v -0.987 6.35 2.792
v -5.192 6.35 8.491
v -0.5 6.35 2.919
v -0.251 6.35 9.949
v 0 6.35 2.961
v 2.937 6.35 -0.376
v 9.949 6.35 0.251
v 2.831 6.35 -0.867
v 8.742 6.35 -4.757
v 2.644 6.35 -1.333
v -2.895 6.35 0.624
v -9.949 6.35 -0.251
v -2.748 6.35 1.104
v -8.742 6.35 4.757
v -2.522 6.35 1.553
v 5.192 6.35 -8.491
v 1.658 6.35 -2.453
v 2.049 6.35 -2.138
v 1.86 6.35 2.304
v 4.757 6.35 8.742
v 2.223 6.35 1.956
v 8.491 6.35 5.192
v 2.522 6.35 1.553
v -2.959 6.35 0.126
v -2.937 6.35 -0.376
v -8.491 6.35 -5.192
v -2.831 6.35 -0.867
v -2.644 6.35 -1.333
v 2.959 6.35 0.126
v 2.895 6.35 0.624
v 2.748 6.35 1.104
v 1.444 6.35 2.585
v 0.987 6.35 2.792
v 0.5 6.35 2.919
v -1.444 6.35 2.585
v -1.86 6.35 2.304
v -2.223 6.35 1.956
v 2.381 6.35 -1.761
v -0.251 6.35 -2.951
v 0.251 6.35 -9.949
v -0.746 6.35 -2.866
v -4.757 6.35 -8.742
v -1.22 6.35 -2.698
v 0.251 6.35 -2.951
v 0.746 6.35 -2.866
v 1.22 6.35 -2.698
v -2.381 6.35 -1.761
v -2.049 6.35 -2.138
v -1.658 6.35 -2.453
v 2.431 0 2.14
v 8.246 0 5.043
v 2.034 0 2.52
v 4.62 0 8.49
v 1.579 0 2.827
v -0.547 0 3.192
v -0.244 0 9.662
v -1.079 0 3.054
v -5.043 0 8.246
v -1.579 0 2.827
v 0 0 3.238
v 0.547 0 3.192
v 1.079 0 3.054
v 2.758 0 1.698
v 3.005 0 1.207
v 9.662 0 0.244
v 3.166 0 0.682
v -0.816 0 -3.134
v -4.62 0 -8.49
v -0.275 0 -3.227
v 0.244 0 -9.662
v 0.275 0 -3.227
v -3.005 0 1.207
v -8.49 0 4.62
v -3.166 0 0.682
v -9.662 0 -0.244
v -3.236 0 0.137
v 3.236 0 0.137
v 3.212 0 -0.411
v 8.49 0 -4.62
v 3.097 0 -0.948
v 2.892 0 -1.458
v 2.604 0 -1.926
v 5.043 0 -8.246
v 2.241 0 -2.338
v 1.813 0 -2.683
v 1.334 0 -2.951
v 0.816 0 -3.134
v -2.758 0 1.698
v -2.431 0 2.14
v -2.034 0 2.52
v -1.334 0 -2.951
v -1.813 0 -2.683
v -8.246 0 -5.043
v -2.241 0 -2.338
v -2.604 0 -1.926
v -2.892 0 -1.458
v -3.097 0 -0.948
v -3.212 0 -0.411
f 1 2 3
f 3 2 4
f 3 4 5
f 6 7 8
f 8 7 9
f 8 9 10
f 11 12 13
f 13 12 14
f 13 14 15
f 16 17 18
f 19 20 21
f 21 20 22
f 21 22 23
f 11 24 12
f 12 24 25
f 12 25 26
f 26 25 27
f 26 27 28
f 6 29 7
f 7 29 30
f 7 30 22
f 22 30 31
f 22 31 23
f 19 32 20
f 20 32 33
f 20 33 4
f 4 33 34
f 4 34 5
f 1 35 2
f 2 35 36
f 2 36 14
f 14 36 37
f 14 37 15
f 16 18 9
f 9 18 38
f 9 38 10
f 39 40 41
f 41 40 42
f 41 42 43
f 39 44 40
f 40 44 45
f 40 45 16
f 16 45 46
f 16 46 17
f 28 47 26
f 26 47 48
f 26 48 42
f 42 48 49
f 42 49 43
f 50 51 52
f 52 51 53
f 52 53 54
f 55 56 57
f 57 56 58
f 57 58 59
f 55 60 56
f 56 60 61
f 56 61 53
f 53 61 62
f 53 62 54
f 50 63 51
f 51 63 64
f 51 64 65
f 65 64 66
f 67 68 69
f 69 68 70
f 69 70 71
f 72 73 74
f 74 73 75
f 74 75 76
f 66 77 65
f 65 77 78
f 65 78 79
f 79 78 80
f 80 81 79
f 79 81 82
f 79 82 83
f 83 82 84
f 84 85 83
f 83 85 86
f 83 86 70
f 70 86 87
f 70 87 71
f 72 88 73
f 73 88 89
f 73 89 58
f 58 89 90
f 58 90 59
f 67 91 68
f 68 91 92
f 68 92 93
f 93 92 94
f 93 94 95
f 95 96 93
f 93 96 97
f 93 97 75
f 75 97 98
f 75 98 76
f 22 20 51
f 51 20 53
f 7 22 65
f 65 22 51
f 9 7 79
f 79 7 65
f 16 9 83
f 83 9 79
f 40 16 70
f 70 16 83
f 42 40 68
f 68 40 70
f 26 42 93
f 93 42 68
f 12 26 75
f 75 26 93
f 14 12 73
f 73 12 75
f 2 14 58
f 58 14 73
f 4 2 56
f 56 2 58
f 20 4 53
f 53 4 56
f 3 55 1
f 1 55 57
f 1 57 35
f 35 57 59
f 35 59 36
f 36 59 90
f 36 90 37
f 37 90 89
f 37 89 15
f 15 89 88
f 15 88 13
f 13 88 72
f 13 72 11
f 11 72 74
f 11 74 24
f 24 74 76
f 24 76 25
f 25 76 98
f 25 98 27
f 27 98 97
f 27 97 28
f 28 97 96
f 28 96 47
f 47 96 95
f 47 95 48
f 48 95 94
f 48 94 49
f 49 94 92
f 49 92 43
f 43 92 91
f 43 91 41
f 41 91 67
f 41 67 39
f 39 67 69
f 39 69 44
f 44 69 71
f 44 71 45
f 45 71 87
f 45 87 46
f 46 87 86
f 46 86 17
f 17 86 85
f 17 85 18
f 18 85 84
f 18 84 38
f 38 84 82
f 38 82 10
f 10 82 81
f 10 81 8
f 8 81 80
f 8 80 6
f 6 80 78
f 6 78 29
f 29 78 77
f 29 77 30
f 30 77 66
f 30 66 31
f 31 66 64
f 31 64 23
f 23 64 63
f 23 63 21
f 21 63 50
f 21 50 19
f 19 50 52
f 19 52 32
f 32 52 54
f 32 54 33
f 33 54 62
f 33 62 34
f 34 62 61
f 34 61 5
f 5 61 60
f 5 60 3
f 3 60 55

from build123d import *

# Parameters (mm, degrees)
SKETCH1_R           = 3.2385
BOSS_EXTRUDE1_DEPTH = 6.35
BOSS_EXTRUDE1_DRAFT = -2.5


with BuildPart() as part:
    # Sketch1 → Boss-Extrude1 (with draft: the straight prism first)
    with BuildSketch(Plane(origin=(0, 0, 0), x_dir=(1, 0, 0), z_dir=(0, 1, 0))):
        Polygon((8.24563965, -5.042609025), (9.662237919, -0.244207692), (8.489847342, 4.619628895), (5.042609025, 8.24563965), (0.244207692, 9.662237919), (-4.619628895, 8.489847342), (-8.24563965, 5.042609025), (-9.662237919, 0.244207692), (-8.489847342, -4.619628895), (-5.042609025, -8.24563965), (-0.244207692, -9.662237919), (4.619628895, -8.489847342), align=None)
        Circle(SKETCH1_R, mode=Mode.SUBTRACT)
    extrude(amount=BOSS_EXTRUDE1_DEPTH)
    # Boss-Extrude1: the draft: its side faces are tilted about the plane it starts from
    boss_extrude1_sides = [part.faces().sort_by_distance(p)[0] for p in [
        (8.953938785, 3.175, 2.643408358),
        (9.07604263, 3.175, -2.187710601),
        (6.766228183, 3.175, -6.432634272),
        (2.643408358, 3.175, -8.953938785),
        (-2.187710601, 3.175, -9.07604263),
        (-6.432634272, 3.175, -6.766228183),
        (-8.953938785, 3.175, -2.643408358),
        (-9.07604263, 3.175, 2.187710601),
        (-6.766228183, 3.175, 6.432634272),
        (-2.643408358, 3.175, 8.953938785),
        (2.187710601, 3.175, 9.07604263),
        (6.432634272, 3.175, 6.766228183),
        (-3.2385, 3.175, 0),
    ]]
    draft(boss_extrude1_sides, Plane(origin=(0, 0, 0), x_dir=(1, 0, 0), z_dir=(0, 1, 0)), BOSS_EXTRUDE1_DRAFT)


solid = part.part
